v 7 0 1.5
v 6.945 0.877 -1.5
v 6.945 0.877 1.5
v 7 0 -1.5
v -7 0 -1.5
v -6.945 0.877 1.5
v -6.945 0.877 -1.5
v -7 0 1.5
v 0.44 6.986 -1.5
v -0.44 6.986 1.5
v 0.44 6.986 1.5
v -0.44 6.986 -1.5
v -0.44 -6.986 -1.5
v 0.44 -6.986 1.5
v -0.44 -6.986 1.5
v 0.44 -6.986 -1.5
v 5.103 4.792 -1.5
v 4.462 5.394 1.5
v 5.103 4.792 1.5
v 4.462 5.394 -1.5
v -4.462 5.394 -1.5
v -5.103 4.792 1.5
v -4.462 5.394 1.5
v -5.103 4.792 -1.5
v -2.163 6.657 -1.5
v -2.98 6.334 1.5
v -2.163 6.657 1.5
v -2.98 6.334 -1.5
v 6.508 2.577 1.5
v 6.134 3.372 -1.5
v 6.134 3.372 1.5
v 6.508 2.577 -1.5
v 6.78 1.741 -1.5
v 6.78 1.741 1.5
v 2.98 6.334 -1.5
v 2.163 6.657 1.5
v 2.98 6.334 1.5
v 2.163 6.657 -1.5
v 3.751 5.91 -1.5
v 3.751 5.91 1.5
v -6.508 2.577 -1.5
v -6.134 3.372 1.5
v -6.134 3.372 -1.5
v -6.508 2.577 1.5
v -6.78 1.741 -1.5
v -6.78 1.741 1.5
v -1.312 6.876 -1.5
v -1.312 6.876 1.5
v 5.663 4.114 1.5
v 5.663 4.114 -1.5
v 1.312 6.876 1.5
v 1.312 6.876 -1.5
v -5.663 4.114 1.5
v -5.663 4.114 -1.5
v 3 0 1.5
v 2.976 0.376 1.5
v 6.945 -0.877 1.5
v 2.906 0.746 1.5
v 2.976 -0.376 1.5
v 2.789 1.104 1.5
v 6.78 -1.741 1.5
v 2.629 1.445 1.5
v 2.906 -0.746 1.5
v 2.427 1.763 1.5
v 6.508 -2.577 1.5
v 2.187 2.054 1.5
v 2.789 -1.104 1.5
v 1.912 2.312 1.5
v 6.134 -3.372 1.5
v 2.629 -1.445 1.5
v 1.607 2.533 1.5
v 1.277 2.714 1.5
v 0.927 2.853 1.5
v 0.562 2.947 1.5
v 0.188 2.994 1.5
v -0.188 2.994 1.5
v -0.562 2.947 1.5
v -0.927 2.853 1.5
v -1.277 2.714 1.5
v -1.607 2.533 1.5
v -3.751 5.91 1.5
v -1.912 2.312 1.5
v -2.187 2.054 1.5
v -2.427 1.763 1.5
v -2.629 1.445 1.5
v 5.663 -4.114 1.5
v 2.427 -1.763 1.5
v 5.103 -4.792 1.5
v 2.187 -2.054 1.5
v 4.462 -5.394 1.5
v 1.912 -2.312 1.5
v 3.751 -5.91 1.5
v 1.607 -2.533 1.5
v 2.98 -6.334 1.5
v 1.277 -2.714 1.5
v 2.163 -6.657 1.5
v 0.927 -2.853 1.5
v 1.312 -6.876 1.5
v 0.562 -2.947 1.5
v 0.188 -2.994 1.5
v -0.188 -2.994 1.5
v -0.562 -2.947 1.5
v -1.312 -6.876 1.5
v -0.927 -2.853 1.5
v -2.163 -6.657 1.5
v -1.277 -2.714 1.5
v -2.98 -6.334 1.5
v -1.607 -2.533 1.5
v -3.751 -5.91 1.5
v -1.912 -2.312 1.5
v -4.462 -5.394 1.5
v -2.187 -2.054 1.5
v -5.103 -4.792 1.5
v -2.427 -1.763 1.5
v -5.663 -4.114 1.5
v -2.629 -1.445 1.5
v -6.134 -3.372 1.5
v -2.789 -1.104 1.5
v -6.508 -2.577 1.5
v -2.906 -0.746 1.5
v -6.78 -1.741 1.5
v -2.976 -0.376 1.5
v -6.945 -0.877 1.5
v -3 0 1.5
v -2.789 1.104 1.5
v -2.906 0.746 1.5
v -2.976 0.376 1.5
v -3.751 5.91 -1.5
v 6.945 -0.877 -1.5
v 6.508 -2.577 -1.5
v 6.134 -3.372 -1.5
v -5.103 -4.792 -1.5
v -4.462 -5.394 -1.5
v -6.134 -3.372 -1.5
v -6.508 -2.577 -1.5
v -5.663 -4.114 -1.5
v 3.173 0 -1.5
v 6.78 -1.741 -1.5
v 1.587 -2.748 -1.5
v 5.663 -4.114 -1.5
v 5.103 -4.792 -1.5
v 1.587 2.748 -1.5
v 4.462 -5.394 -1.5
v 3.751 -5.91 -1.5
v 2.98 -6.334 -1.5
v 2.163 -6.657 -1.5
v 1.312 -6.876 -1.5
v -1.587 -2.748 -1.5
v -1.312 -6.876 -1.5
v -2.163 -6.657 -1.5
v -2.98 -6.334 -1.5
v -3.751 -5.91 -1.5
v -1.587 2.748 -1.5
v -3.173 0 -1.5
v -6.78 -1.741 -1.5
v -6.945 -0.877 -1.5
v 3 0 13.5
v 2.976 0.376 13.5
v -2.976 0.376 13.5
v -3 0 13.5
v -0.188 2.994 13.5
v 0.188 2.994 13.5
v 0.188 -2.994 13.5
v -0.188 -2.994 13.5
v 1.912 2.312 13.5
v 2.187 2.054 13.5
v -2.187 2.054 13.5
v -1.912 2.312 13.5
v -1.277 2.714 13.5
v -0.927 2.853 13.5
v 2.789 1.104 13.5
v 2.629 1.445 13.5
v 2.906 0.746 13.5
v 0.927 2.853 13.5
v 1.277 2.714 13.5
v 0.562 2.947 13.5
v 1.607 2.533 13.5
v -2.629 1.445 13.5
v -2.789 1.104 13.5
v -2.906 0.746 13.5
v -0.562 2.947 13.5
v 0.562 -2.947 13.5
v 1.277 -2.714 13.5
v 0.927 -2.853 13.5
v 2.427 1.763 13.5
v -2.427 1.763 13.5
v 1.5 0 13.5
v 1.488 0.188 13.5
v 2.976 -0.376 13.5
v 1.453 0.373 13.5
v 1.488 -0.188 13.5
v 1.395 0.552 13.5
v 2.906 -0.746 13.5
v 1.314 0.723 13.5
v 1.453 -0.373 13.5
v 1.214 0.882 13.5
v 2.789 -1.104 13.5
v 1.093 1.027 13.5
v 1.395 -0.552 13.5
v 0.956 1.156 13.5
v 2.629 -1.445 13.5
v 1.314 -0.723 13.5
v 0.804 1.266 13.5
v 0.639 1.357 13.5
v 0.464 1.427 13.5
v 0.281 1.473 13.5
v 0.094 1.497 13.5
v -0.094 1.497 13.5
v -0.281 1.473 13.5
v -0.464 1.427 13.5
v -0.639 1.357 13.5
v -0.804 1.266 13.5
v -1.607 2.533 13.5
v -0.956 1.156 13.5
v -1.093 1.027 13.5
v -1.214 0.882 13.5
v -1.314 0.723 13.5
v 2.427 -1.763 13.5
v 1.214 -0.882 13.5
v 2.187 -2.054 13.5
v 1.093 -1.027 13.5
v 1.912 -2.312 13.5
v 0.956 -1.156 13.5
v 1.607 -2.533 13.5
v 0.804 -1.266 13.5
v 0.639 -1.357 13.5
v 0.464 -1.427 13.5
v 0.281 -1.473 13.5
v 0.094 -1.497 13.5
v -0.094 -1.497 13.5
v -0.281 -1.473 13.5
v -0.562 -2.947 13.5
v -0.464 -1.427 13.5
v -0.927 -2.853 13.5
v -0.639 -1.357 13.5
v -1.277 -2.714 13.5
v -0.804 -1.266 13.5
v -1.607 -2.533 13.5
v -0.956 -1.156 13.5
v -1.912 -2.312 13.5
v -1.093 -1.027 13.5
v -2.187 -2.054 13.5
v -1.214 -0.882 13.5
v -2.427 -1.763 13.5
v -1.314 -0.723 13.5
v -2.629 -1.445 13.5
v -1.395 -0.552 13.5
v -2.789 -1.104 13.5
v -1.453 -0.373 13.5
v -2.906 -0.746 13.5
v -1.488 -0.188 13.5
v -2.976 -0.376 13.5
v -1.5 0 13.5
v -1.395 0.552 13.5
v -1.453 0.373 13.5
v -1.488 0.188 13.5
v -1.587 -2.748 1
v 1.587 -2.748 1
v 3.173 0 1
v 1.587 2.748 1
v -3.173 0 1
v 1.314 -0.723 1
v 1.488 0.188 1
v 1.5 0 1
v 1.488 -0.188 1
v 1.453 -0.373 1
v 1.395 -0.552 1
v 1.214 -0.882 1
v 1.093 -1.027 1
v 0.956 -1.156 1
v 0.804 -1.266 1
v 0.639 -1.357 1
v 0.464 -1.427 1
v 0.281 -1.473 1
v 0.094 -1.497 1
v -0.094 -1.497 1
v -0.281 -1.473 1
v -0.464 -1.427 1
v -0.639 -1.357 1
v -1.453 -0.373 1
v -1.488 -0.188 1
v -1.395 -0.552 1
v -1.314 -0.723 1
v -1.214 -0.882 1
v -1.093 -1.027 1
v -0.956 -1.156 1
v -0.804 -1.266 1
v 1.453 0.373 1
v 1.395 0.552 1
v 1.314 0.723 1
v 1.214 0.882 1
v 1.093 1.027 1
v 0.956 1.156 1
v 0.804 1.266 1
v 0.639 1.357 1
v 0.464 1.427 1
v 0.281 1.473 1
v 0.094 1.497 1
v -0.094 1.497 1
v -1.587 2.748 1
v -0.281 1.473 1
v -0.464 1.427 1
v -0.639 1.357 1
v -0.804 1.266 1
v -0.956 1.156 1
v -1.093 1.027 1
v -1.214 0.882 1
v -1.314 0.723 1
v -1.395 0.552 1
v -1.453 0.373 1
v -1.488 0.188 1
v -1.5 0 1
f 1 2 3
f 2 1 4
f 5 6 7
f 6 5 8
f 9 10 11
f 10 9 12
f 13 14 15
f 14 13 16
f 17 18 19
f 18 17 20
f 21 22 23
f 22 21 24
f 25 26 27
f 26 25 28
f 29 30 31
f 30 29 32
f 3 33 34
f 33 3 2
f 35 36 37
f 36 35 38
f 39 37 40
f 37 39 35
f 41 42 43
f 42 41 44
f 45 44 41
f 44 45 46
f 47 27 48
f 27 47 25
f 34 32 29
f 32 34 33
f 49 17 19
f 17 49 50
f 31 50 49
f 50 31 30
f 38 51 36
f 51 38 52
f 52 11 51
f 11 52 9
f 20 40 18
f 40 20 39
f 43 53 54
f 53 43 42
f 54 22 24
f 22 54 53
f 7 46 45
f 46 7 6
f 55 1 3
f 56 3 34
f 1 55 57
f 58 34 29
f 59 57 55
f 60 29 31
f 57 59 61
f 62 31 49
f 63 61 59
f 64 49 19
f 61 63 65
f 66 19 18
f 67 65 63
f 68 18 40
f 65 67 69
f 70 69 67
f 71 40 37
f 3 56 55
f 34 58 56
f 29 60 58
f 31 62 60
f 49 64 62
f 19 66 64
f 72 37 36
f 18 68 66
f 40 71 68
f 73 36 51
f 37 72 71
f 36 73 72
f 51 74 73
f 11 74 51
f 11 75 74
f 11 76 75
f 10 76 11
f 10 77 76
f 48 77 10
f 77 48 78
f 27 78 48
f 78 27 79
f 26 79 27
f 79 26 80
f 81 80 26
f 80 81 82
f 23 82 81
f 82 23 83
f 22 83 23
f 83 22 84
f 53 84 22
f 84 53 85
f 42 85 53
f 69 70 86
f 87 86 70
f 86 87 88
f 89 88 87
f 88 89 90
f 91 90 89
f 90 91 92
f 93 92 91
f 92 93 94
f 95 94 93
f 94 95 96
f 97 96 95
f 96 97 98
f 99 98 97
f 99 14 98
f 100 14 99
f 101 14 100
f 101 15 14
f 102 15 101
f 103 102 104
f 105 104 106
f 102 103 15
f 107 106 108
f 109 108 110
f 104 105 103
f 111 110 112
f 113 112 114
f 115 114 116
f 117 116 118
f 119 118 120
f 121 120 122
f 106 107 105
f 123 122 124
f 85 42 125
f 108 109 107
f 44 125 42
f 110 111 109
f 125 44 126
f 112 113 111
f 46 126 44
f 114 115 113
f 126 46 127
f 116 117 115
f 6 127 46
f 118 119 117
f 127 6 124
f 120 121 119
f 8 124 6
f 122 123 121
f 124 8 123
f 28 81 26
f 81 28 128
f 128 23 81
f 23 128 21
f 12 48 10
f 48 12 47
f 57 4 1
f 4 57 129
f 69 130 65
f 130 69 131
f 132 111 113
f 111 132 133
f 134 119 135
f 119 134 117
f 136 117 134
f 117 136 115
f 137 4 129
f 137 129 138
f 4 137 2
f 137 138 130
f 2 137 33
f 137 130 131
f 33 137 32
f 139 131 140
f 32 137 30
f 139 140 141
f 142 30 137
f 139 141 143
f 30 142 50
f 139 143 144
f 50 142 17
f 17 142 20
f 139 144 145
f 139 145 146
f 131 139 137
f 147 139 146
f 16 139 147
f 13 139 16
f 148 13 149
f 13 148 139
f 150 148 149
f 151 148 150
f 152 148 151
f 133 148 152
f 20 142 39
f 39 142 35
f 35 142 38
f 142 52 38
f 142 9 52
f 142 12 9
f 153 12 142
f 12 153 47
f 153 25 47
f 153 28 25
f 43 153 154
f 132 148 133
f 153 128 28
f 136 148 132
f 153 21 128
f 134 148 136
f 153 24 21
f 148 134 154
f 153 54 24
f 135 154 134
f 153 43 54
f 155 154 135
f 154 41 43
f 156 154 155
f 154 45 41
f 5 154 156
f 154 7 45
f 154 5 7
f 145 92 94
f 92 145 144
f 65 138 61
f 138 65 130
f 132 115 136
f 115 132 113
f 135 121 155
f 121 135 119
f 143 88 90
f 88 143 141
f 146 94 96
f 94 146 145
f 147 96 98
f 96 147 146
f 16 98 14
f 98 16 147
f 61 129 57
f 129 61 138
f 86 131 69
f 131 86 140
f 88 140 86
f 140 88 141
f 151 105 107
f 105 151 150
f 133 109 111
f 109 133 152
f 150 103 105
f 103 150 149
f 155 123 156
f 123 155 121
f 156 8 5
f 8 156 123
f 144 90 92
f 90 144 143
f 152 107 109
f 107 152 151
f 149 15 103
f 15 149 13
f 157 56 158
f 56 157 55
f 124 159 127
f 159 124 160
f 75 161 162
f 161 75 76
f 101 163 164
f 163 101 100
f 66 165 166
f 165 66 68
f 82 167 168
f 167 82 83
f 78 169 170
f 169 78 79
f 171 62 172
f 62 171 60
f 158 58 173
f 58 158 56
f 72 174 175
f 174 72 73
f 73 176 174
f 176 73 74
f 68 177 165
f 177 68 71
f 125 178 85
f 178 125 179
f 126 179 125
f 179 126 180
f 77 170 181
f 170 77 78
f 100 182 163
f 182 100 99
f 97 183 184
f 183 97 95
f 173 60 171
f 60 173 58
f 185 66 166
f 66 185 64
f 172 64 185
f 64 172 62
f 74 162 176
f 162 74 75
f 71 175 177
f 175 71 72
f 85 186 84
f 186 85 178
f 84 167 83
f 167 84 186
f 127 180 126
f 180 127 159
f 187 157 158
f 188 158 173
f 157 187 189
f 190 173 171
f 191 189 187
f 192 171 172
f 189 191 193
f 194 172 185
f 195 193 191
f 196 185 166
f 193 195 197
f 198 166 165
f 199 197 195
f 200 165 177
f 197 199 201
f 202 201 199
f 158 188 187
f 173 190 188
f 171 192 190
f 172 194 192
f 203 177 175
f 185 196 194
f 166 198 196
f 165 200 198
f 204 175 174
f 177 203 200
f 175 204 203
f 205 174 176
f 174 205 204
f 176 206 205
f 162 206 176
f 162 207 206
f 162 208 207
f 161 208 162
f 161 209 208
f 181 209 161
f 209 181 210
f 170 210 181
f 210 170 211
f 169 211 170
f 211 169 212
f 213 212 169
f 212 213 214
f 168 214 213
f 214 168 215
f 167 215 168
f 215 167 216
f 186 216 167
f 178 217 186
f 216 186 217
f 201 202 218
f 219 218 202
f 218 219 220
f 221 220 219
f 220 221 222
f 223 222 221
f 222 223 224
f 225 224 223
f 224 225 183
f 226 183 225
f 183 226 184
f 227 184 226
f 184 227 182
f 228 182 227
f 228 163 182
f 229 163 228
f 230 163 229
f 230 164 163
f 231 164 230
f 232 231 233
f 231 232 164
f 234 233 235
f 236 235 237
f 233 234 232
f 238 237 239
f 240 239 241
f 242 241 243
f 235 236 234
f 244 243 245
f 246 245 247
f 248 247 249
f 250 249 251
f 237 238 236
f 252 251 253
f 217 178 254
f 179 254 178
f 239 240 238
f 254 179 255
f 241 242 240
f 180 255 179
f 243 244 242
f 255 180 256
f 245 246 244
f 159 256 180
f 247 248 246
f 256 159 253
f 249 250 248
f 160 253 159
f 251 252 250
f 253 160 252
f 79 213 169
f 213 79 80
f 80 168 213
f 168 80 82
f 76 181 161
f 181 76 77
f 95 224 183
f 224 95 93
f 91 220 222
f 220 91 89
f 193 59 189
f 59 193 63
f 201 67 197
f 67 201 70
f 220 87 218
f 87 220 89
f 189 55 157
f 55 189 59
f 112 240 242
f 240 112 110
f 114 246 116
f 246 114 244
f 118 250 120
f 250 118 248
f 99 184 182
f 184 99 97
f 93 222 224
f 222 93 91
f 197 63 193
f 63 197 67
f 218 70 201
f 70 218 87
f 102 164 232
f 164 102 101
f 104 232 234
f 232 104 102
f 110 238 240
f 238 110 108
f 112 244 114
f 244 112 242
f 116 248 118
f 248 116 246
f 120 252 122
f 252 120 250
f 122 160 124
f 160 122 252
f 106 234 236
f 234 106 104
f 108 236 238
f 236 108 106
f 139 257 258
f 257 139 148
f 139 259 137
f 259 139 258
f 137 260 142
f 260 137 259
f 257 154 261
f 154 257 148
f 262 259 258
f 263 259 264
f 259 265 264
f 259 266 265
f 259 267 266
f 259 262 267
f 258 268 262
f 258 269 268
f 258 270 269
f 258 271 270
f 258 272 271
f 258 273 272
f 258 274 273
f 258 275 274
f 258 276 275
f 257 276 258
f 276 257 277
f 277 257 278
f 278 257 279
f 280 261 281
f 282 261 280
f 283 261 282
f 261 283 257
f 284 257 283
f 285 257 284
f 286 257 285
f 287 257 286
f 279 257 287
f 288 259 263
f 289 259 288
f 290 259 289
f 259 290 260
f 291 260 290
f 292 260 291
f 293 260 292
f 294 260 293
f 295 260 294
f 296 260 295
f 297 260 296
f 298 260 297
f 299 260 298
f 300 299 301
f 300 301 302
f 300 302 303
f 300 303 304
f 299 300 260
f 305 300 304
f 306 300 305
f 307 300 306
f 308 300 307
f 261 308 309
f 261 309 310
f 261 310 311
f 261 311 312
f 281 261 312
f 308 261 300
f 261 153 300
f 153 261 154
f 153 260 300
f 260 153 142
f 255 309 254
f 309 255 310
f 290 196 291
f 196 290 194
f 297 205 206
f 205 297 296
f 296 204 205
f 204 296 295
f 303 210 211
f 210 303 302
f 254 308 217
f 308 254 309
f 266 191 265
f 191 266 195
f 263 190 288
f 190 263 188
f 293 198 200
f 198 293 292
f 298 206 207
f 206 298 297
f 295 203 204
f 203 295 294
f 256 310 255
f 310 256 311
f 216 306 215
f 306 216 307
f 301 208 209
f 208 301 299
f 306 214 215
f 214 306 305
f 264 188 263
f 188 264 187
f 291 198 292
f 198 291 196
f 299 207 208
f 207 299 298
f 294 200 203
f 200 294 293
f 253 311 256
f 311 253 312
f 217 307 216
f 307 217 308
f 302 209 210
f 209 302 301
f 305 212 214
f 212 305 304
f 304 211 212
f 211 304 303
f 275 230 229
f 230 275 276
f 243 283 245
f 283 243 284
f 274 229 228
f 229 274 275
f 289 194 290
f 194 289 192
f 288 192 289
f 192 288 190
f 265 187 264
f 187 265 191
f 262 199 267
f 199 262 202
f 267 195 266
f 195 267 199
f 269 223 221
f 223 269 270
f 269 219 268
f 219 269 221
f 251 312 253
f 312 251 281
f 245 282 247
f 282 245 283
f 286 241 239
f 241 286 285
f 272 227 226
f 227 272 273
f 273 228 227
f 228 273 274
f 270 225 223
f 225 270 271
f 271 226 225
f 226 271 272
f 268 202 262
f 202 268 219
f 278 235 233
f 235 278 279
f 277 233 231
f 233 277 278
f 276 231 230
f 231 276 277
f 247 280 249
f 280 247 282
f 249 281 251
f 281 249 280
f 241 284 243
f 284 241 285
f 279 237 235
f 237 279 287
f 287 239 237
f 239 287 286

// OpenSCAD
$fn = 50;


difference() {
	union() {
		translate(v = [0, 0, -1.5000000000]) {
			cylinder(h = 3, r = 7.0000000000);
		}
		translate(v = [0, 0, -1.5000000000]) {
			cylinder(h = 15, r = 3.0000000000);
		}
	}
	union() {
		translate(v = [0, 0, -1.5000000000]) {
			rotate(a = [0, 0, 0]) {
				difference() {
					union() {
						linear_extrude(height = 2.5000000000) {
							polygon(points = [[3.1735000000, 0.0000000000], [1.5867500000, 2.7483316189], [-1.5867500000, 2.7483316189], [-3.1735000000, 0.0000000000], [-1.5867500000, -2.7483316189], [1.5867500000, -2.7483316189]]);
						}
					}
					union();
				}
			}
		}
		translate(v = [0, 0, -50.0000000000]) {
			cylinder(h = 100, r = 1.5000000000);
		}
	}
}
